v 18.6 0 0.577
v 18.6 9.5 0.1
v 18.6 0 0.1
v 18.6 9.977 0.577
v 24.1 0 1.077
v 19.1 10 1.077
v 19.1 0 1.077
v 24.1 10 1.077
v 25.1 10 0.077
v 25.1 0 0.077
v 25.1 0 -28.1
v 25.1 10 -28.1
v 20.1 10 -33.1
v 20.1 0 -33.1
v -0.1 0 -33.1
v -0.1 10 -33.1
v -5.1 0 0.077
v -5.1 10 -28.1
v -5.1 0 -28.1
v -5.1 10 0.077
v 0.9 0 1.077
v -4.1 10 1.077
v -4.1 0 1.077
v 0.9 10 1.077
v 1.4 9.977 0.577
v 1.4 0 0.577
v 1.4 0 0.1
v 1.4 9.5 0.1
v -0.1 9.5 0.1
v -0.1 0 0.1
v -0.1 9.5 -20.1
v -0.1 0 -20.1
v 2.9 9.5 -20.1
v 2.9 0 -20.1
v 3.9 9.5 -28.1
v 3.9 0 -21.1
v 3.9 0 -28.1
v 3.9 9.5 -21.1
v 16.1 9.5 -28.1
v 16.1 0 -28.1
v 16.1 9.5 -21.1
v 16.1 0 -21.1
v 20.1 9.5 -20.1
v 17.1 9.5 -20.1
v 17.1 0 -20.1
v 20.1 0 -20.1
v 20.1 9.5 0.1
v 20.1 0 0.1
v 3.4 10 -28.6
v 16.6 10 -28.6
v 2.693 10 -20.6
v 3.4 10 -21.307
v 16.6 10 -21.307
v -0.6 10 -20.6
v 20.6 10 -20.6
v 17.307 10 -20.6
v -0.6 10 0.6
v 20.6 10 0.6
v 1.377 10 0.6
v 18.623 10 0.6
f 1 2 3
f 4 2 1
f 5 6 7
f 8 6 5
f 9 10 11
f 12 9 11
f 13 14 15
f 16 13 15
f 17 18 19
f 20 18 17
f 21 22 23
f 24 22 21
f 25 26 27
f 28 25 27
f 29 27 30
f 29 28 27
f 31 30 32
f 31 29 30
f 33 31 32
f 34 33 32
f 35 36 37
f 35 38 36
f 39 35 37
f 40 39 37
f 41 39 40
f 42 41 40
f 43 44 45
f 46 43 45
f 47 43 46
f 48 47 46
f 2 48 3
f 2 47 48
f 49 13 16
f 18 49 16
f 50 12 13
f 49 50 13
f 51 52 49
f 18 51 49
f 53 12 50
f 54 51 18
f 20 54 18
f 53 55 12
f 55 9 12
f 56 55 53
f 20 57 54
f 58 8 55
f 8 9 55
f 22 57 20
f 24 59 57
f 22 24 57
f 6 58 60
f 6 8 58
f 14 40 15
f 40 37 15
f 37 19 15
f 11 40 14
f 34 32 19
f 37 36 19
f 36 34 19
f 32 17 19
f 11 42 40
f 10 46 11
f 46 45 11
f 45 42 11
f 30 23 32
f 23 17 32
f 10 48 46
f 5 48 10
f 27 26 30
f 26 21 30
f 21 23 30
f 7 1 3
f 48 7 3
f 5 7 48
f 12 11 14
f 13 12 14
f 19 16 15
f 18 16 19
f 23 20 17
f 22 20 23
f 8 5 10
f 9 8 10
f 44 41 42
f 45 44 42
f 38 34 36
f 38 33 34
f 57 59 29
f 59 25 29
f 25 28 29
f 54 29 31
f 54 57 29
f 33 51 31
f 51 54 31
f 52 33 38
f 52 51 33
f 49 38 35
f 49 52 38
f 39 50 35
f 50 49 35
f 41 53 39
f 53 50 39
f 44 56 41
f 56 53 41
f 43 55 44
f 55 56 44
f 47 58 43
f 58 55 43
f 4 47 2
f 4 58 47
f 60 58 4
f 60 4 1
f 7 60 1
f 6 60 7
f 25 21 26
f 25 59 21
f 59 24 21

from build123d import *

# Parameters (mm, degrees)
BOSS_EXTRUDE1_DEPTH = 10
CHAMFER1_SIZE       = 5
CHAMFER3_SIZE       = 1
CHAMFER4_SIZE       = 0.5
CHAMFER5_SIZE       = 0.5


with BuildPart() as part:
    # Sketch1 → Boss-Extrude1 (new body)
    with BuildSketch(Plane(origin=(0, 0, 0), x_dir=(1, 0, 0), z_dir=(0, 1, 0))):
        Polygon((-0.1, 0), (-0.1, 20.1), (3.9, 20.1), (3.9, 28.1), (16.1, 28.1), (16.1, 20.1), (20.1, 20.1), (20.1, 0), (20.1, -0.1), (18.6, -0.1), (18.6, -1.076654702), (25.1, -1.076654702), (25.1, 10), (25.1, 33.1), (-5.1, 33.1), (-5.1, 10), (-5.1, -1.076654702), (1.4, -1.076654702), (1.4, -0.1), (-0.1, -0.1), align=None)
    extrude(amount=BOSS_EXTRUDE1_DEPTH)

    # Chamfer1
    chamfer1_edges = [part.edges().sort_by_distance(p)[0] for p in [
        (-5.1, 5, -33.1),
        (25.1, 5, -33.1),
    ]]
    chamfer(chamfer1_edges, length=CHAMFER1_SIZE)

    # Chamfer3
    chamfer3_edges = [part.edges().sort_by_distance(p)[0] for p in [
        (16.1, 5, -20.1),
        (3.9, 5, -20.1),
        (-5.1, 5, 1.076654702),
        (25.1, 5, 1.076654702),
    ]]
    chamfer(chamfer3_edges, length=CHAMFER3_SIZE)

    # Chamfer4
    chamfer4_edges = [part.edges().sort_by_distance(p)[0] for p in [
        (0.65, 10, 0.1),
        (-0.1, 10, -10),
        (1.4, 10, -20.1),
        (10, 10, -28.1),
        (3.9, 10, -24.6),
        (16.1, 10, -24.6),
        (18.6, 10, -20.1),
        (3.4, 10, -20.6),
        (16.6, 10, -20.6),
        (20.1, 10, -10.05),
        (19.35, 10, 0.1),
    ]]
    chamfer(chamfer4_edges, length=CHAMFER4_SIZE)

    # Chamfer5
    chamfer5_edges = [part.edges().sort_by_distance(p)[0] for p in [
        (18.6, 5, 1.076654702),
        (1.4, 5, 1.076654702),
    ]]
    chamfer(chamfer5_edges, length=CHAMFER5_SIZE)


solid = part.part
